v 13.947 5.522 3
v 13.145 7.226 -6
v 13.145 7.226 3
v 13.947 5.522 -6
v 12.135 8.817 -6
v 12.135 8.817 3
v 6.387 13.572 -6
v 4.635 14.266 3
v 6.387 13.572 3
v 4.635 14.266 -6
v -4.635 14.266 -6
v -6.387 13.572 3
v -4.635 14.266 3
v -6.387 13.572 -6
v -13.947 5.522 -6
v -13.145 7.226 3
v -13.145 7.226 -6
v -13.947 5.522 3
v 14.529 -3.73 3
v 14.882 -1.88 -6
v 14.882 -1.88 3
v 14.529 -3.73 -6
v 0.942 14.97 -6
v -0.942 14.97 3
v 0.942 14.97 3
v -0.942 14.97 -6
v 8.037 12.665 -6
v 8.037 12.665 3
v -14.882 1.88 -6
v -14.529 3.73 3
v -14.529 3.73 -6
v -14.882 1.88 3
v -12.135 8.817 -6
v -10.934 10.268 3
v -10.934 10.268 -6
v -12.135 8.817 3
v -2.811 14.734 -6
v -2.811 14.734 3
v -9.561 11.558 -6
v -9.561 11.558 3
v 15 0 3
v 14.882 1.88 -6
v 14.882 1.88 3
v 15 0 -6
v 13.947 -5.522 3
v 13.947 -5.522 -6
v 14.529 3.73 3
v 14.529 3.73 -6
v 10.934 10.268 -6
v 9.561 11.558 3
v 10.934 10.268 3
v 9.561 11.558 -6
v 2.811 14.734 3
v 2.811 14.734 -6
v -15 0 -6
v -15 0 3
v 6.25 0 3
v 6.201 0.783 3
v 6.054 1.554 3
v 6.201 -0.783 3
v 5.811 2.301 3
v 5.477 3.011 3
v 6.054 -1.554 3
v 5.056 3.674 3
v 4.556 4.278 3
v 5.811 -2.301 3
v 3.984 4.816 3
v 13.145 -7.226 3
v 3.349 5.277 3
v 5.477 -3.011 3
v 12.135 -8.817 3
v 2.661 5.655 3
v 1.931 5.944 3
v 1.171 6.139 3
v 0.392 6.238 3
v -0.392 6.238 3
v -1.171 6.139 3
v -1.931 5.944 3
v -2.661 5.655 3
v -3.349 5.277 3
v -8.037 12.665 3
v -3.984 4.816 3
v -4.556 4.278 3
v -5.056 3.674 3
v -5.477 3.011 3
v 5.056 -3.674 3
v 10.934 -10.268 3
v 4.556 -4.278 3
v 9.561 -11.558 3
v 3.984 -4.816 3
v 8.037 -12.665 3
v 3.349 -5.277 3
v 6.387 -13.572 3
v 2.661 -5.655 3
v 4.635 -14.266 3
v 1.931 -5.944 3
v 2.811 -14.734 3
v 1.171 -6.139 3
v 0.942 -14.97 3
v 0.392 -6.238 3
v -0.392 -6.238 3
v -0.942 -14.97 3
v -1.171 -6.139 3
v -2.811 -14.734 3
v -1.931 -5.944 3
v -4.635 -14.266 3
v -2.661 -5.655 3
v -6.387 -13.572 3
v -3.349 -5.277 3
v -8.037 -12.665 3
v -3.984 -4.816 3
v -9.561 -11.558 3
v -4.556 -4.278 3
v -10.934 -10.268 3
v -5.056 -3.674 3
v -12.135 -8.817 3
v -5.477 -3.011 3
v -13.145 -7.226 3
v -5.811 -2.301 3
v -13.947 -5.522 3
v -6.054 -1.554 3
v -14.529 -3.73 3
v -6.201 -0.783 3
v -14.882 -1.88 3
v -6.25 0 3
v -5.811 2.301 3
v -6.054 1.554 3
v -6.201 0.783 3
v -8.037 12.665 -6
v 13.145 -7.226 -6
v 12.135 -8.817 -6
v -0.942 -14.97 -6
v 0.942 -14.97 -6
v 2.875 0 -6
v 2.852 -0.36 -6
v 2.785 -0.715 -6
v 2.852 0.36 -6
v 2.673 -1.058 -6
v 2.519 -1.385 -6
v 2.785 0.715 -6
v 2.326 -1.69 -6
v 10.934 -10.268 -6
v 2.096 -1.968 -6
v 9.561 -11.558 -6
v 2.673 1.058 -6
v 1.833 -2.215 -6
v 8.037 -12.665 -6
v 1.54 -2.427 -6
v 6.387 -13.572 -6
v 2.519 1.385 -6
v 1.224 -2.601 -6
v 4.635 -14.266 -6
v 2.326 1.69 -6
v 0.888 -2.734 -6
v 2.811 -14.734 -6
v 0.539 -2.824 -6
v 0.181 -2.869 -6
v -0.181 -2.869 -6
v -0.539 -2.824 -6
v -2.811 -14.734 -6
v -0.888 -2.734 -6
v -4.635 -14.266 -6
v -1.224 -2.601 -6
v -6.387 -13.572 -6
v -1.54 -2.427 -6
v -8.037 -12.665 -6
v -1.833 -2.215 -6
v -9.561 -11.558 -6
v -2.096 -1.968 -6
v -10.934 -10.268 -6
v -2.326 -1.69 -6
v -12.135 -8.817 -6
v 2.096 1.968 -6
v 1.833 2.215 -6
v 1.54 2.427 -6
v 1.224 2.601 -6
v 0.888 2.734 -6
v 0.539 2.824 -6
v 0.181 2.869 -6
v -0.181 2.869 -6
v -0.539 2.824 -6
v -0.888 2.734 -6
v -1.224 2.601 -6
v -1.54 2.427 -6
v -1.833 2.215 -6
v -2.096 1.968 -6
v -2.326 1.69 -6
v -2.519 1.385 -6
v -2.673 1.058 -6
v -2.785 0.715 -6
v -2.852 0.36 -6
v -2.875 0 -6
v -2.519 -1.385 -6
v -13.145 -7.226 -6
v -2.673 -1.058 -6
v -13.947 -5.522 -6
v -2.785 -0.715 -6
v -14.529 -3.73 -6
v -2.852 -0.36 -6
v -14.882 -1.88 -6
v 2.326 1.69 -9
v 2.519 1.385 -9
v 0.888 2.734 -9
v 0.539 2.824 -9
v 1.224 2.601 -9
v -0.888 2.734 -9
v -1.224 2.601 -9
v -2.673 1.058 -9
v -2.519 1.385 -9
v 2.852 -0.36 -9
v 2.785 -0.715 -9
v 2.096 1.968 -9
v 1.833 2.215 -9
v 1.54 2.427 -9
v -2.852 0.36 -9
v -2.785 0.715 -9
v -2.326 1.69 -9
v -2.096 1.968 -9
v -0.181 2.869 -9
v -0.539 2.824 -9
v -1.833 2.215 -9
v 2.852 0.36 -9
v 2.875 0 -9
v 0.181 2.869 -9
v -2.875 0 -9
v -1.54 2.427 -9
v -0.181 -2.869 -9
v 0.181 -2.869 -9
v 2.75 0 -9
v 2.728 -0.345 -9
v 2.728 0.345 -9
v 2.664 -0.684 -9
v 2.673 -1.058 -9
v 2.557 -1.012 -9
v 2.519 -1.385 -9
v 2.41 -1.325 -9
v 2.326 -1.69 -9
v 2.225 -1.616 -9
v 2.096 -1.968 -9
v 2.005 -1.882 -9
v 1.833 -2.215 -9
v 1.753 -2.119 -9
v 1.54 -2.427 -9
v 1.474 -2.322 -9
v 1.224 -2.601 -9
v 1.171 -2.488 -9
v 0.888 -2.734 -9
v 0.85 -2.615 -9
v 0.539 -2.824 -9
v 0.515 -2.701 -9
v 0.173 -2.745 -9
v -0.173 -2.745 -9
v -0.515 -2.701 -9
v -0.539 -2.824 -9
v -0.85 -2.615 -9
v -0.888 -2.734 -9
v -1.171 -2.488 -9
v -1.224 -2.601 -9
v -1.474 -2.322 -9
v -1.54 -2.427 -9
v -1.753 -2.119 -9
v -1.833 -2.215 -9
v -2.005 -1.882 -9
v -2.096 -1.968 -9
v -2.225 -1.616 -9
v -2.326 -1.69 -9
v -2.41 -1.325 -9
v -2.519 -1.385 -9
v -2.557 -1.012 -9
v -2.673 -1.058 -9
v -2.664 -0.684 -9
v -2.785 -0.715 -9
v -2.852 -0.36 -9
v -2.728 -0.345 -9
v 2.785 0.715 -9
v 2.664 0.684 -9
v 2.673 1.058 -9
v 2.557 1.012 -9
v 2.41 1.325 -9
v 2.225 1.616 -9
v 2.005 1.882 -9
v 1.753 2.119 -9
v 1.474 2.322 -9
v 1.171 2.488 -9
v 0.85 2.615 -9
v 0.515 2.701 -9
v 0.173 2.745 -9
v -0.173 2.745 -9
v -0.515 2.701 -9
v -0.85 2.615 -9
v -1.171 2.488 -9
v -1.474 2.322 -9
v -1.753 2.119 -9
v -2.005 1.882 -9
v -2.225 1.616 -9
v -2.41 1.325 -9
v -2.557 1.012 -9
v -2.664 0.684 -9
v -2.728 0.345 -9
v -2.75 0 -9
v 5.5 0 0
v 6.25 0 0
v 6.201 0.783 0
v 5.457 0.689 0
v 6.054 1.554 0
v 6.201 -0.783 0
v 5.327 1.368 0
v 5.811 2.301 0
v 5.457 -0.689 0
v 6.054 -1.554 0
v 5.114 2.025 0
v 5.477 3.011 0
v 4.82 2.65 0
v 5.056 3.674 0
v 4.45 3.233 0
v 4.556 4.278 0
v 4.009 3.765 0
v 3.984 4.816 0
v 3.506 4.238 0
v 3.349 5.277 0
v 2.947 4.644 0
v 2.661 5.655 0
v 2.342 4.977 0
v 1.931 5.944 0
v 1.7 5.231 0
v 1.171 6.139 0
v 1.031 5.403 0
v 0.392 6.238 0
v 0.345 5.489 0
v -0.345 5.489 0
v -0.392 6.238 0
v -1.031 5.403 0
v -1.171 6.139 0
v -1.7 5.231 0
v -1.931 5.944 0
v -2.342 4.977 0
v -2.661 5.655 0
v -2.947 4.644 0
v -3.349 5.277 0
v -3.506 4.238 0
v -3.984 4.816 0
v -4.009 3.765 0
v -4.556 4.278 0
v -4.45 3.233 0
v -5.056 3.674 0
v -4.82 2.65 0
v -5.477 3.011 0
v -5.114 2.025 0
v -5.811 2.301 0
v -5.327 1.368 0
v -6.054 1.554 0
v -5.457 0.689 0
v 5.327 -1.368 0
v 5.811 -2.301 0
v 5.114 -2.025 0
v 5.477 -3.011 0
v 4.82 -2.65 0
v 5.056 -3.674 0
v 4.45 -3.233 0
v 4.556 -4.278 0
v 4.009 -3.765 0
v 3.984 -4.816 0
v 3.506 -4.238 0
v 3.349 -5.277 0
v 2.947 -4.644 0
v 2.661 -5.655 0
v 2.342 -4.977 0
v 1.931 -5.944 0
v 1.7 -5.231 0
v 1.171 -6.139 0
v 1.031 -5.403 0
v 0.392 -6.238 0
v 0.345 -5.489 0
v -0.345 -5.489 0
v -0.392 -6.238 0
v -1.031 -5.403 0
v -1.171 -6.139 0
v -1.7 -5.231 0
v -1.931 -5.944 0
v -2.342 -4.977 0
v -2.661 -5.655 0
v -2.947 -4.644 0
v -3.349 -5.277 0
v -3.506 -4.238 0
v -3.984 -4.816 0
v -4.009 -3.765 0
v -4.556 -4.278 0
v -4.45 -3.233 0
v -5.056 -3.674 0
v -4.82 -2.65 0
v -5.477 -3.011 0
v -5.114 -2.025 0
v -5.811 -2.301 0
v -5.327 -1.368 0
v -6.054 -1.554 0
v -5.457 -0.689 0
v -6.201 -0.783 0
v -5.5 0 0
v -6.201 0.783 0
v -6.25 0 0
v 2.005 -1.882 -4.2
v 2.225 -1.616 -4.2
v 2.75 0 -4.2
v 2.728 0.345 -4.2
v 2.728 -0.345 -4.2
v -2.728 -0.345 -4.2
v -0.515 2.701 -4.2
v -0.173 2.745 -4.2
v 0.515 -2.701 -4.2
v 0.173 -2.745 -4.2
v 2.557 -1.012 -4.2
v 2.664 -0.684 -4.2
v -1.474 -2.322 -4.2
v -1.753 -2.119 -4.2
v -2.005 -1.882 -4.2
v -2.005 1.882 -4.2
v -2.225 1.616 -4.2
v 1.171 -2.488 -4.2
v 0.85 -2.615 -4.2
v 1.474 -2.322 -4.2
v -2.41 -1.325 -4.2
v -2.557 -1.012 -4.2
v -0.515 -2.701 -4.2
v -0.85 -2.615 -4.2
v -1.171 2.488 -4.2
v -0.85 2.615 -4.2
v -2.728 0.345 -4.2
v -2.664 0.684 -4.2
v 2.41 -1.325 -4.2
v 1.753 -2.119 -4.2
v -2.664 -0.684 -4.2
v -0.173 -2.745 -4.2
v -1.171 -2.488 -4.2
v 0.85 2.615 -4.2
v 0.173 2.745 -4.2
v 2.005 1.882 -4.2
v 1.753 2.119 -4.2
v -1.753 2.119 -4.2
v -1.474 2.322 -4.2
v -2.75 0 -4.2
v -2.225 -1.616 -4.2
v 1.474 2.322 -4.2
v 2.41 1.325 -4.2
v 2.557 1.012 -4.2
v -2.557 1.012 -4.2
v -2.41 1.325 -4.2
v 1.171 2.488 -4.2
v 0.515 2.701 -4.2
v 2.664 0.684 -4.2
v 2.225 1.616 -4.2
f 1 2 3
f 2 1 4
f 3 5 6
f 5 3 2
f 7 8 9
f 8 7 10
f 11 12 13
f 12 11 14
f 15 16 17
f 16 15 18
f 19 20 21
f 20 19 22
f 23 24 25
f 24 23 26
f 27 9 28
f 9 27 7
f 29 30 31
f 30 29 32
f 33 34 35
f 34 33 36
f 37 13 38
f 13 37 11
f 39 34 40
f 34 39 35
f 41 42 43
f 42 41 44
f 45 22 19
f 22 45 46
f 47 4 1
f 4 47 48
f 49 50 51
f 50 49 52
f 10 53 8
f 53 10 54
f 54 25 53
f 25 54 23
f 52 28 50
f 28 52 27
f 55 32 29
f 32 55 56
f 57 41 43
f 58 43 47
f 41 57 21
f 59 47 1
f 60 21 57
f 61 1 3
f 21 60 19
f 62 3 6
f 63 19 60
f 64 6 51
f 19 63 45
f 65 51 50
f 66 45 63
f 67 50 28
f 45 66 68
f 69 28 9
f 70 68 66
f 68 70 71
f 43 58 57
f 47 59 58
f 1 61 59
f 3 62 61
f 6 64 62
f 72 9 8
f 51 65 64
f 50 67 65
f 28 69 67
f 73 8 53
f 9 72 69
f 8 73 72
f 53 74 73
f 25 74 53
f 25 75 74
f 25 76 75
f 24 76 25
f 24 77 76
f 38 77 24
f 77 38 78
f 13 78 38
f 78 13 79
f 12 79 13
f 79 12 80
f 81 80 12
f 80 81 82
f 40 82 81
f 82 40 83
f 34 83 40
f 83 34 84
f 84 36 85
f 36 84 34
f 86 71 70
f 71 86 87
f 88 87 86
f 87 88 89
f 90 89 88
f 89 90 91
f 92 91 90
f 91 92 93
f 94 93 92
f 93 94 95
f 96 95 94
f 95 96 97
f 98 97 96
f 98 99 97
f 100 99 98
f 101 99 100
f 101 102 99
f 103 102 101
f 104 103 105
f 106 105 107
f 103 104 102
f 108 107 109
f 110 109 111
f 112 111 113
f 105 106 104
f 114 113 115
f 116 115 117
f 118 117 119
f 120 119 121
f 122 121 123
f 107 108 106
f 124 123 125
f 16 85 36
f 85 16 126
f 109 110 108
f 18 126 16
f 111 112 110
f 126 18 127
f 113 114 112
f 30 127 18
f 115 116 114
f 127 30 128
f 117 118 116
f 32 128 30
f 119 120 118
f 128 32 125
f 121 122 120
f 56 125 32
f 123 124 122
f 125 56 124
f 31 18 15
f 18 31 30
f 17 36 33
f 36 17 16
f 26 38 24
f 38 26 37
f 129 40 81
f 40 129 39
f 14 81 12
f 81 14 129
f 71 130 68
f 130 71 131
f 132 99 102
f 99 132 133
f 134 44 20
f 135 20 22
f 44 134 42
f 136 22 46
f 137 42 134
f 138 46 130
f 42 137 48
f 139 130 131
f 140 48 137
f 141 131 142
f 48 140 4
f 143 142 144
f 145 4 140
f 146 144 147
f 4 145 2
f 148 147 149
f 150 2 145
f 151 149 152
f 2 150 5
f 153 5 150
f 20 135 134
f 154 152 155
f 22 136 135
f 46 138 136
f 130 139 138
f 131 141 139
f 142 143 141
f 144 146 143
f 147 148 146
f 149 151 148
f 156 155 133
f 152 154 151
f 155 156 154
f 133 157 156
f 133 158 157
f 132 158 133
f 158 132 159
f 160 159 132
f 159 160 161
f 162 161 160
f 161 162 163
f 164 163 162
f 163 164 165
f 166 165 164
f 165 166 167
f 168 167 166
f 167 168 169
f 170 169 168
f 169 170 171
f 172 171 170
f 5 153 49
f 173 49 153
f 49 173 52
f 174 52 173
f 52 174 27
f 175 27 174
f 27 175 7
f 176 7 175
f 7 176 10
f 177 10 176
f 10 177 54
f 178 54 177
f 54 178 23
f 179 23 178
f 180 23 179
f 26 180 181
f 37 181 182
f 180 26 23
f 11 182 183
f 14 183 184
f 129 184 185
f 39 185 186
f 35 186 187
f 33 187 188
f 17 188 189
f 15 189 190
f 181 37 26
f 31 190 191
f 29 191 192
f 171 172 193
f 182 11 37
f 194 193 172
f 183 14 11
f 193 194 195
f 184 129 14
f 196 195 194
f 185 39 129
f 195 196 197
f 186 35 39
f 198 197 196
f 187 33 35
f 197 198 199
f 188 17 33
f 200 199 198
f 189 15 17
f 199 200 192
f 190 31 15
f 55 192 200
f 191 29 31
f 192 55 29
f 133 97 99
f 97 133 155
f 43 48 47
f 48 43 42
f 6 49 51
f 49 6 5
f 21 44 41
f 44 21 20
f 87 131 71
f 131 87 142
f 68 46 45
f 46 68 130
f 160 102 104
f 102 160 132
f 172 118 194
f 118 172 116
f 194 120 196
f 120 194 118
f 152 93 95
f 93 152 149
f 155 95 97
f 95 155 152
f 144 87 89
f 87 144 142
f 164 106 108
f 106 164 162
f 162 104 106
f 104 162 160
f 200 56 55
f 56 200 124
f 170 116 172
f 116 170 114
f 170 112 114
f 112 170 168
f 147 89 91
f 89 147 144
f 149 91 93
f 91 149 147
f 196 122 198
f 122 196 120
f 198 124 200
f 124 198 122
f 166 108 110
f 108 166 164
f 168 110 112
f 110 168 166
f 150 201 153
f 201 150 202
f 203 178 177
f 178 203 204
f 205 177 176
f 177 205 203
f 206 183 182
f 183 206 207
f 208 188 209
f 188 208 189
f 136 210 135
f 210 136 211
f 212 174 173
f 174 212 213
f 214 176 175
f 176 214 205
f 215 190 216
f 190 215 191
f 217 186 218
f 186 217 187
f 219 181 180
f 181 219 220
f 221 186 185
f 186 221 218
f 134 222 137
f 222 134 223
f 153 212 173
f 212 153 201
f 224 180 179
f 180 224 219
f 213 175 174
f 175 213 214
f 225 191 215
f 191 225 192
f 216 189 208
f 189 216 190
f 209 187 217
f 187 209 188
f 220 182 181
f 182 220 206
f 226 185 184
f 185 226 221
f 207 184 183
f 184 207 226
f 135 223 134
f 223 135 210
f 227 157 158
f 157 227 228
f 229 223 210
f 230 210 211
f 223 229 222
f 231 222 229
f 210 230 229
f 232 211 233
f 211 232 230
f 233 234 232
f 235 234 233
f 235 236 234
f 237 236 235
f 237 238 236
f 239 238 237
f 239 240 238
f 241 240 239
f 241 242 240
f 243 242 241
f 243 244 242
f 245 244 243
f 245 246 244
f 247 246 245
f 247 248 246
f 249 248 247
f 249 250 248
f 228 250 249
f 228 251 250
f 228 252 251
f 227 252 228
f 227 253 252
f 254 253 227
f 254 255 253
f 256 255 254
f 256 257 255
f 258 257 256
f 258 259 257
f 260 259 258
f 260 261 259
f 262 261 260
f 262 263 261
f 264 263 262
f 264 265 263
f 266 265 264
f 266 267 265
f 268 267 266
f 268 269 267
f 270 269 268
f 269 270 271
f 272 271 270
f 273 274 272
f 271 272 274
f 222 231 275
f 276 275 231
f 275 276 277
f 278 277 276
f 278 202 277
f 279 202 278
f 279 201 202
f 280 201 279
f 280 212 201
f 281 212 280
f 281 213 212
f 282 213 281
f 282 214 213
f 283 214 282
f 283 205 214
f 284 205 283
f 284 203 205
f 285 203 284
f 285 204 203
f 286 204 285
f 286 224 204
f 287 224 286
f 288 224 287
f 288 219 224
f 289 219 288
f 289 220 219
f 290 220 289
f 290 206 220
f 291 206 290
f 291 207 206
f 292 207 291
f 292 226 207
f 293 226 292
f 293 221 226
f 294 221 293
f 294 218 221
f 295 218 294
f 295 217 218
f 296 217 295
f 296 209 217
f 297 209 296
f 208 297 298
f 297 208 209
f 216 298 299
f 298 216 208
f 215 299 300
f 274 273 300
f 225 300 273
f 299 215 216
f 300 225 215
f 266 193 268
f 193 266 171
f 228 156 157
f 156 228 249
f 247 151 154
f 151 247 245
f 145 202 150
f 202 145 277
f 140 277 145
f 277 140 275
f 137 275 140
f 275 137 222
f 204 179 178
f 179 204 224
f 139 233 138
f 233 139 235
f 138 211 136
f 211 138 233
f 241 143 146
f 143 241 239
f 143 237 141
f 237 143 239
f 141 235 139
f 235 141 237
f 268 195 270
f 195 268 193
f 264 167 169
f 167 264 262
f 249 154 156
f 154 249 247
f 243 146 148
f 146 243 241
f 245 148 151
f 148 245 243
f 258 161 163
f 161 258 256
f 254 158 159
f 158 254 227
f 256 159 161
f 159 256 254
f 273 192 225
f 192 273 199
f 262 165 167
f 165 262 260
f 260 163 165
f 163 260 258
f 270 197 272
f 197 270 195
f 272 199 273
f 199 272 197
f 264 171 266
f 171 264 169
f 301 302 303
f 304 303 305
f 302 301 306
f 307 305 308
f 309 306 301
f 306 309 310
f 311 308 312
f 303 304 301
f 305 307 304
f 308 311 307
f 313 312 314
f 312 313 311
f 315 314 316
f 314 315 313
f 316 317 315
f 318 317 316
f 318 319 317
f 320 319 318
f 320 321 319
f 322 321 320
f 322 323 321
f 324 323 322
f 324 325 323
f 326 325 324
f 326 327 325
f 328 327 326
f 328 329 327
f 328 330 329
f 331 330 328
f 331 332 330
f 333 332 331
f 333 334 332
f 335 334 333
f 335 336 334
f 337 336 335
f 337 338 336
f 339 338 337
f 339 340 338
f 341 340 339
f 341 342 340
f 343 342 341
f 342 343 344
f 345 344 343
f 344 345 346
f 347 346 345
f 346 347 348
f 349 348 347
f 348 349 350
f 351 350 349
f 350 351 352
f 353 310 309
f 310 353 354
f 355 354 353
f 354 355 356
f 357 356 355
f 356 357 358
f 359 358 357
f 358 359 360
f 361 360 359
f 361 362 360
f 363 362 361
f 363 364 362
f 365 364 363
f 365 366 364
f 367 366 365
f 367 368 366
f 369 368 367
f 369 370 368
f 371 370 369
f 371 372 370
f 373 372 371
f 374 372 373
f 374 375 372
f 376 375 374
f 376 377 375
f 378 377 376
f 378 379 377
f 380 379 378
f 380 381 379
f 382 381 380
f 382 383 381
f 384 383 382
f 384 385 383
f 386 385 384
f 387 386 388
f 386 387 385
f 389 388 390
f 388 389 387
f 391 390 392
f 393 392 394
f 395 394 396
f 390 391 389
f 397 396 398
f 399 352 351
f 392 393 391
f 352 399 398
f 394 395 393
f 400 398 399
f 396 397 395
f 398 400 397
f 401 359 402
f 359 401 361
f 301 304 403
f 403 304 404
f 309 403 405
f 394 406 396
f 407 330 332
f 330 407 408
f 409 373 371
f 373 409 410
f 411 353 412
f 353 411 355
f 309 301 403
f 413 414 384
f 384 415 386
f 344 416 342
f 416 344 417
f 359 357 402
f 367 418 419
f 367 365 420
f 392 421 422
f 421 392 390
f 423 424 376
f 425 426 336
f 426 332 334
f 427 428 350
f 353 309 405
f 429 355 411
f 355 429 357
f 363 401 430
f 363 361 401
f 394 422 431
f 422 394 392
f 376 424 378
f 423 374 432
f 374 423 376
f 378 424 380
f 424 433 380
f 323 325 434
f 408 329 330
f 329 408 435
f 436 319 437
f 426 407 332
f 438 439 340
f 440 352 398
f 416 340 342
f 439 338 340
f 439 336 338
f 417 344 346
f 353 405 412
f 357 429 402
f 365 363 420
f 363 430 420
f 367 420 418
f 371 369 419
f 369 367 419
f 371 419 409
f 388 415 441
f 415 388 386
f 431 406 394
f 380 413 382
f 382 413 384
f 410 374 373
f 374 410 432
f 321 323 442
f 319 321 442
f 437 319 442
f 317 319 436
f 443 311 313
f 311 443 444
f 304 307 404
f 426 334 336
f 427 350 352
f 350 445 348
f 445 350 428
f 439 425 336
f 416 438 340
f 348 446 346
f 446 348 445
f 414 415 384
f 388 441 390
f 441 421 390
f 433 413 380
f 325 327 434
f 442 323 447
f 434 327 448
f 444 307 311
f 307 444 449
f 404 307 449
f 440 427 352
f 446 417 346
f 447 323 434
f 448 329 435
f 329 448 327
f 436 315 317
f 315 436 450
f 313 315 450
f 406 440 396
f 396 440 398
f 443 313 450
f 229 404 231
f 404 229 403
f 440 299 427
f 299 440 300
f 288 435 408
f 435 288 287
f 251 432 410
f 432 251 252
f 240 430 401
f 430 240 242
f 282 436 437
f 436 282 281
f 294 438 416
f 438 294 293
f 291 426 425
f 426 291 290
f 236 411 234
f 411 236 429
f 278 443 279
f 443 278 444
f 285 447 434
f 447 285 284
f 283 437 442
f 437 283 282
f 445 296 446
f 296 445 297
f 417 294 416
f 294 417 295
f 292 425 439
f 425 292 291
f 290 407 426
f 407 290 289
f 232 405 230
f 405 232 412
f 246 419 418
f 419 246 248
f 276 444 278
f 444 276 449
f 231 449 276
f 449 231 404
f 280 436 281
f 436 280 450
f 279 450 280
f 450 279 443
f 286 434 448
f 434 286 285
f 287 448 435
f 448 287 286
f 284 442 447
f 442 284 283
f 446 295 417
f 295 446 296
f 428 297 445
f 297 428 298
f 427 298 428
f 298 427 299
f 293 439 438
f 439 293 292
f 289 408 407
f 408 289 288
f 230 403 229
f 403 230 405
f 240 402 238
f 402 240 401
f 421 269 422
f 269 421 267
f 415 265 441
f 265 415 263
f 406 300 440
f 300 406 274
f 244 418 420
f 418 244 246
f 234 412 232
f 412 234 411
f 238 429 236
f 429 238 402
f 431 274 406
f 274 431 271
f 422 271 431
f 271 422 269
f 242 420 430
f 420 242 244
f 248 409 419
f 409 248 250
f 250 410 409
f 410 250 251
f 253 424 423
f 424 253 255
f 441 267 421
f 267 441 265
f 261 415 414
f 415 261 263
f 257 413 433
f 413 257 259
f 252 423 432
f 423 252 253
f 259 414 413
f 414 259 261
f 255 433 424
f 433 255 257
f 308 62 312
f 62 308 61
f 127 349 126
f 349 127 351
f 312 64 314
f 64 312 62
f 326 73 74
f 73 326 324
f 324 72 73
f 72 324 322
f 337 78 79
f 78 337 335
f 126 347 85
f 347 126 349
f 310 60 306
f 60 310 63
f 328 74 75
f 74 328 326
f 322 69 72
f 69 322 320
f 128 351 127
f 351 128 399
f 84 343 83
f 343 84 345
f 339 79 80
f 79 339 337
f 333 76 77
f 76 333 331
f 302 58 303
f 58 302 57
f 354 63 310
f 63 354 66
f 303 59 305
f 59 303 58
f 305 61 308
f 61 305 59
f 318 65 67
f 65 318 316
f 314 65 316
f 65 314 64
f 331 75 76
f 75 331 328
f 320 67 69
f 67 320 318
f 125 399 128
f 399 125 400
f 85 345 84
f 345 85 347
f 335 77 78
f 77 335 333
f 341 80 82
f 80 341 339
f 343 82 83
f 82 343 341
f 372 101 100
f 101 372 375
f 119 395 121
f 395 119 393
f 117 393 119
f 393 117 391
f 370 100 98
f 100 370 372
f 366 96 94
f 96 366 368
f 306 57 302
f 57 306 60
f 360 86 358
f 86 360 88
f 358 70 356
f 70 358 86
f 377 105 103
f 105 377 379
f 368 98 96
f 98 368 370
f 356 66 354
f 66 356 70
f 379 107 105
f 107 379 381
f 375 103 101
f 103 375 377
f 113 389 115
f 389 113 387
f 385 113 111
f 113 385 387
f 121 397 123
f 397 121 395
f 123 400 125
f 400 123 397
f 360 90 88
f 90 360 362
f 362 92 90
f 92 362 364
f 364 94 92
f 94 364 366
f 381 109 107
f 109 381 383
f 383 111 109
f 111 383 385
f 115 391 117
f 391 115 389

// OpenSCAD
$fn = 50;


difference() {
	union() {
		translate(v = [0, 0, -6.0000000000]) {
			cylinder(h = 9, r = 15.0000000000);
		}
		#translate(v = [0, 0, -9.0000000000]) {
			cylinder(h = 9, r = 2.8750000000);
		}
	}
	union() {
		translate(v = [0, 0, 0]) {
			rotate(a = [0, 0, 0]) {
				difference() {
					union() {
						translate(v = [0, 0, -9.0000000000]) {
							cylinder(h = 9, r = 2.2500000000);
						}
						translate(v = [0, 0, -4.2000000000]) {
							cylinder(h = 4.2000000000, r1 = 2.7500000000, r2 = 5.5000000000);
						}
						translate(v = [0, 0, -9.0000000000]) {
							cylinder(h = 9, r = 2.7500000000);
						}
						translate(v = [0, 0, -9.0000000000]) {
							cylinder(h = 9, r = 2.2500000000);
						}
					}
					union();
				}
			}
		}
		#cylinder(h = 3, r = 6.2500000000);
	}
}
